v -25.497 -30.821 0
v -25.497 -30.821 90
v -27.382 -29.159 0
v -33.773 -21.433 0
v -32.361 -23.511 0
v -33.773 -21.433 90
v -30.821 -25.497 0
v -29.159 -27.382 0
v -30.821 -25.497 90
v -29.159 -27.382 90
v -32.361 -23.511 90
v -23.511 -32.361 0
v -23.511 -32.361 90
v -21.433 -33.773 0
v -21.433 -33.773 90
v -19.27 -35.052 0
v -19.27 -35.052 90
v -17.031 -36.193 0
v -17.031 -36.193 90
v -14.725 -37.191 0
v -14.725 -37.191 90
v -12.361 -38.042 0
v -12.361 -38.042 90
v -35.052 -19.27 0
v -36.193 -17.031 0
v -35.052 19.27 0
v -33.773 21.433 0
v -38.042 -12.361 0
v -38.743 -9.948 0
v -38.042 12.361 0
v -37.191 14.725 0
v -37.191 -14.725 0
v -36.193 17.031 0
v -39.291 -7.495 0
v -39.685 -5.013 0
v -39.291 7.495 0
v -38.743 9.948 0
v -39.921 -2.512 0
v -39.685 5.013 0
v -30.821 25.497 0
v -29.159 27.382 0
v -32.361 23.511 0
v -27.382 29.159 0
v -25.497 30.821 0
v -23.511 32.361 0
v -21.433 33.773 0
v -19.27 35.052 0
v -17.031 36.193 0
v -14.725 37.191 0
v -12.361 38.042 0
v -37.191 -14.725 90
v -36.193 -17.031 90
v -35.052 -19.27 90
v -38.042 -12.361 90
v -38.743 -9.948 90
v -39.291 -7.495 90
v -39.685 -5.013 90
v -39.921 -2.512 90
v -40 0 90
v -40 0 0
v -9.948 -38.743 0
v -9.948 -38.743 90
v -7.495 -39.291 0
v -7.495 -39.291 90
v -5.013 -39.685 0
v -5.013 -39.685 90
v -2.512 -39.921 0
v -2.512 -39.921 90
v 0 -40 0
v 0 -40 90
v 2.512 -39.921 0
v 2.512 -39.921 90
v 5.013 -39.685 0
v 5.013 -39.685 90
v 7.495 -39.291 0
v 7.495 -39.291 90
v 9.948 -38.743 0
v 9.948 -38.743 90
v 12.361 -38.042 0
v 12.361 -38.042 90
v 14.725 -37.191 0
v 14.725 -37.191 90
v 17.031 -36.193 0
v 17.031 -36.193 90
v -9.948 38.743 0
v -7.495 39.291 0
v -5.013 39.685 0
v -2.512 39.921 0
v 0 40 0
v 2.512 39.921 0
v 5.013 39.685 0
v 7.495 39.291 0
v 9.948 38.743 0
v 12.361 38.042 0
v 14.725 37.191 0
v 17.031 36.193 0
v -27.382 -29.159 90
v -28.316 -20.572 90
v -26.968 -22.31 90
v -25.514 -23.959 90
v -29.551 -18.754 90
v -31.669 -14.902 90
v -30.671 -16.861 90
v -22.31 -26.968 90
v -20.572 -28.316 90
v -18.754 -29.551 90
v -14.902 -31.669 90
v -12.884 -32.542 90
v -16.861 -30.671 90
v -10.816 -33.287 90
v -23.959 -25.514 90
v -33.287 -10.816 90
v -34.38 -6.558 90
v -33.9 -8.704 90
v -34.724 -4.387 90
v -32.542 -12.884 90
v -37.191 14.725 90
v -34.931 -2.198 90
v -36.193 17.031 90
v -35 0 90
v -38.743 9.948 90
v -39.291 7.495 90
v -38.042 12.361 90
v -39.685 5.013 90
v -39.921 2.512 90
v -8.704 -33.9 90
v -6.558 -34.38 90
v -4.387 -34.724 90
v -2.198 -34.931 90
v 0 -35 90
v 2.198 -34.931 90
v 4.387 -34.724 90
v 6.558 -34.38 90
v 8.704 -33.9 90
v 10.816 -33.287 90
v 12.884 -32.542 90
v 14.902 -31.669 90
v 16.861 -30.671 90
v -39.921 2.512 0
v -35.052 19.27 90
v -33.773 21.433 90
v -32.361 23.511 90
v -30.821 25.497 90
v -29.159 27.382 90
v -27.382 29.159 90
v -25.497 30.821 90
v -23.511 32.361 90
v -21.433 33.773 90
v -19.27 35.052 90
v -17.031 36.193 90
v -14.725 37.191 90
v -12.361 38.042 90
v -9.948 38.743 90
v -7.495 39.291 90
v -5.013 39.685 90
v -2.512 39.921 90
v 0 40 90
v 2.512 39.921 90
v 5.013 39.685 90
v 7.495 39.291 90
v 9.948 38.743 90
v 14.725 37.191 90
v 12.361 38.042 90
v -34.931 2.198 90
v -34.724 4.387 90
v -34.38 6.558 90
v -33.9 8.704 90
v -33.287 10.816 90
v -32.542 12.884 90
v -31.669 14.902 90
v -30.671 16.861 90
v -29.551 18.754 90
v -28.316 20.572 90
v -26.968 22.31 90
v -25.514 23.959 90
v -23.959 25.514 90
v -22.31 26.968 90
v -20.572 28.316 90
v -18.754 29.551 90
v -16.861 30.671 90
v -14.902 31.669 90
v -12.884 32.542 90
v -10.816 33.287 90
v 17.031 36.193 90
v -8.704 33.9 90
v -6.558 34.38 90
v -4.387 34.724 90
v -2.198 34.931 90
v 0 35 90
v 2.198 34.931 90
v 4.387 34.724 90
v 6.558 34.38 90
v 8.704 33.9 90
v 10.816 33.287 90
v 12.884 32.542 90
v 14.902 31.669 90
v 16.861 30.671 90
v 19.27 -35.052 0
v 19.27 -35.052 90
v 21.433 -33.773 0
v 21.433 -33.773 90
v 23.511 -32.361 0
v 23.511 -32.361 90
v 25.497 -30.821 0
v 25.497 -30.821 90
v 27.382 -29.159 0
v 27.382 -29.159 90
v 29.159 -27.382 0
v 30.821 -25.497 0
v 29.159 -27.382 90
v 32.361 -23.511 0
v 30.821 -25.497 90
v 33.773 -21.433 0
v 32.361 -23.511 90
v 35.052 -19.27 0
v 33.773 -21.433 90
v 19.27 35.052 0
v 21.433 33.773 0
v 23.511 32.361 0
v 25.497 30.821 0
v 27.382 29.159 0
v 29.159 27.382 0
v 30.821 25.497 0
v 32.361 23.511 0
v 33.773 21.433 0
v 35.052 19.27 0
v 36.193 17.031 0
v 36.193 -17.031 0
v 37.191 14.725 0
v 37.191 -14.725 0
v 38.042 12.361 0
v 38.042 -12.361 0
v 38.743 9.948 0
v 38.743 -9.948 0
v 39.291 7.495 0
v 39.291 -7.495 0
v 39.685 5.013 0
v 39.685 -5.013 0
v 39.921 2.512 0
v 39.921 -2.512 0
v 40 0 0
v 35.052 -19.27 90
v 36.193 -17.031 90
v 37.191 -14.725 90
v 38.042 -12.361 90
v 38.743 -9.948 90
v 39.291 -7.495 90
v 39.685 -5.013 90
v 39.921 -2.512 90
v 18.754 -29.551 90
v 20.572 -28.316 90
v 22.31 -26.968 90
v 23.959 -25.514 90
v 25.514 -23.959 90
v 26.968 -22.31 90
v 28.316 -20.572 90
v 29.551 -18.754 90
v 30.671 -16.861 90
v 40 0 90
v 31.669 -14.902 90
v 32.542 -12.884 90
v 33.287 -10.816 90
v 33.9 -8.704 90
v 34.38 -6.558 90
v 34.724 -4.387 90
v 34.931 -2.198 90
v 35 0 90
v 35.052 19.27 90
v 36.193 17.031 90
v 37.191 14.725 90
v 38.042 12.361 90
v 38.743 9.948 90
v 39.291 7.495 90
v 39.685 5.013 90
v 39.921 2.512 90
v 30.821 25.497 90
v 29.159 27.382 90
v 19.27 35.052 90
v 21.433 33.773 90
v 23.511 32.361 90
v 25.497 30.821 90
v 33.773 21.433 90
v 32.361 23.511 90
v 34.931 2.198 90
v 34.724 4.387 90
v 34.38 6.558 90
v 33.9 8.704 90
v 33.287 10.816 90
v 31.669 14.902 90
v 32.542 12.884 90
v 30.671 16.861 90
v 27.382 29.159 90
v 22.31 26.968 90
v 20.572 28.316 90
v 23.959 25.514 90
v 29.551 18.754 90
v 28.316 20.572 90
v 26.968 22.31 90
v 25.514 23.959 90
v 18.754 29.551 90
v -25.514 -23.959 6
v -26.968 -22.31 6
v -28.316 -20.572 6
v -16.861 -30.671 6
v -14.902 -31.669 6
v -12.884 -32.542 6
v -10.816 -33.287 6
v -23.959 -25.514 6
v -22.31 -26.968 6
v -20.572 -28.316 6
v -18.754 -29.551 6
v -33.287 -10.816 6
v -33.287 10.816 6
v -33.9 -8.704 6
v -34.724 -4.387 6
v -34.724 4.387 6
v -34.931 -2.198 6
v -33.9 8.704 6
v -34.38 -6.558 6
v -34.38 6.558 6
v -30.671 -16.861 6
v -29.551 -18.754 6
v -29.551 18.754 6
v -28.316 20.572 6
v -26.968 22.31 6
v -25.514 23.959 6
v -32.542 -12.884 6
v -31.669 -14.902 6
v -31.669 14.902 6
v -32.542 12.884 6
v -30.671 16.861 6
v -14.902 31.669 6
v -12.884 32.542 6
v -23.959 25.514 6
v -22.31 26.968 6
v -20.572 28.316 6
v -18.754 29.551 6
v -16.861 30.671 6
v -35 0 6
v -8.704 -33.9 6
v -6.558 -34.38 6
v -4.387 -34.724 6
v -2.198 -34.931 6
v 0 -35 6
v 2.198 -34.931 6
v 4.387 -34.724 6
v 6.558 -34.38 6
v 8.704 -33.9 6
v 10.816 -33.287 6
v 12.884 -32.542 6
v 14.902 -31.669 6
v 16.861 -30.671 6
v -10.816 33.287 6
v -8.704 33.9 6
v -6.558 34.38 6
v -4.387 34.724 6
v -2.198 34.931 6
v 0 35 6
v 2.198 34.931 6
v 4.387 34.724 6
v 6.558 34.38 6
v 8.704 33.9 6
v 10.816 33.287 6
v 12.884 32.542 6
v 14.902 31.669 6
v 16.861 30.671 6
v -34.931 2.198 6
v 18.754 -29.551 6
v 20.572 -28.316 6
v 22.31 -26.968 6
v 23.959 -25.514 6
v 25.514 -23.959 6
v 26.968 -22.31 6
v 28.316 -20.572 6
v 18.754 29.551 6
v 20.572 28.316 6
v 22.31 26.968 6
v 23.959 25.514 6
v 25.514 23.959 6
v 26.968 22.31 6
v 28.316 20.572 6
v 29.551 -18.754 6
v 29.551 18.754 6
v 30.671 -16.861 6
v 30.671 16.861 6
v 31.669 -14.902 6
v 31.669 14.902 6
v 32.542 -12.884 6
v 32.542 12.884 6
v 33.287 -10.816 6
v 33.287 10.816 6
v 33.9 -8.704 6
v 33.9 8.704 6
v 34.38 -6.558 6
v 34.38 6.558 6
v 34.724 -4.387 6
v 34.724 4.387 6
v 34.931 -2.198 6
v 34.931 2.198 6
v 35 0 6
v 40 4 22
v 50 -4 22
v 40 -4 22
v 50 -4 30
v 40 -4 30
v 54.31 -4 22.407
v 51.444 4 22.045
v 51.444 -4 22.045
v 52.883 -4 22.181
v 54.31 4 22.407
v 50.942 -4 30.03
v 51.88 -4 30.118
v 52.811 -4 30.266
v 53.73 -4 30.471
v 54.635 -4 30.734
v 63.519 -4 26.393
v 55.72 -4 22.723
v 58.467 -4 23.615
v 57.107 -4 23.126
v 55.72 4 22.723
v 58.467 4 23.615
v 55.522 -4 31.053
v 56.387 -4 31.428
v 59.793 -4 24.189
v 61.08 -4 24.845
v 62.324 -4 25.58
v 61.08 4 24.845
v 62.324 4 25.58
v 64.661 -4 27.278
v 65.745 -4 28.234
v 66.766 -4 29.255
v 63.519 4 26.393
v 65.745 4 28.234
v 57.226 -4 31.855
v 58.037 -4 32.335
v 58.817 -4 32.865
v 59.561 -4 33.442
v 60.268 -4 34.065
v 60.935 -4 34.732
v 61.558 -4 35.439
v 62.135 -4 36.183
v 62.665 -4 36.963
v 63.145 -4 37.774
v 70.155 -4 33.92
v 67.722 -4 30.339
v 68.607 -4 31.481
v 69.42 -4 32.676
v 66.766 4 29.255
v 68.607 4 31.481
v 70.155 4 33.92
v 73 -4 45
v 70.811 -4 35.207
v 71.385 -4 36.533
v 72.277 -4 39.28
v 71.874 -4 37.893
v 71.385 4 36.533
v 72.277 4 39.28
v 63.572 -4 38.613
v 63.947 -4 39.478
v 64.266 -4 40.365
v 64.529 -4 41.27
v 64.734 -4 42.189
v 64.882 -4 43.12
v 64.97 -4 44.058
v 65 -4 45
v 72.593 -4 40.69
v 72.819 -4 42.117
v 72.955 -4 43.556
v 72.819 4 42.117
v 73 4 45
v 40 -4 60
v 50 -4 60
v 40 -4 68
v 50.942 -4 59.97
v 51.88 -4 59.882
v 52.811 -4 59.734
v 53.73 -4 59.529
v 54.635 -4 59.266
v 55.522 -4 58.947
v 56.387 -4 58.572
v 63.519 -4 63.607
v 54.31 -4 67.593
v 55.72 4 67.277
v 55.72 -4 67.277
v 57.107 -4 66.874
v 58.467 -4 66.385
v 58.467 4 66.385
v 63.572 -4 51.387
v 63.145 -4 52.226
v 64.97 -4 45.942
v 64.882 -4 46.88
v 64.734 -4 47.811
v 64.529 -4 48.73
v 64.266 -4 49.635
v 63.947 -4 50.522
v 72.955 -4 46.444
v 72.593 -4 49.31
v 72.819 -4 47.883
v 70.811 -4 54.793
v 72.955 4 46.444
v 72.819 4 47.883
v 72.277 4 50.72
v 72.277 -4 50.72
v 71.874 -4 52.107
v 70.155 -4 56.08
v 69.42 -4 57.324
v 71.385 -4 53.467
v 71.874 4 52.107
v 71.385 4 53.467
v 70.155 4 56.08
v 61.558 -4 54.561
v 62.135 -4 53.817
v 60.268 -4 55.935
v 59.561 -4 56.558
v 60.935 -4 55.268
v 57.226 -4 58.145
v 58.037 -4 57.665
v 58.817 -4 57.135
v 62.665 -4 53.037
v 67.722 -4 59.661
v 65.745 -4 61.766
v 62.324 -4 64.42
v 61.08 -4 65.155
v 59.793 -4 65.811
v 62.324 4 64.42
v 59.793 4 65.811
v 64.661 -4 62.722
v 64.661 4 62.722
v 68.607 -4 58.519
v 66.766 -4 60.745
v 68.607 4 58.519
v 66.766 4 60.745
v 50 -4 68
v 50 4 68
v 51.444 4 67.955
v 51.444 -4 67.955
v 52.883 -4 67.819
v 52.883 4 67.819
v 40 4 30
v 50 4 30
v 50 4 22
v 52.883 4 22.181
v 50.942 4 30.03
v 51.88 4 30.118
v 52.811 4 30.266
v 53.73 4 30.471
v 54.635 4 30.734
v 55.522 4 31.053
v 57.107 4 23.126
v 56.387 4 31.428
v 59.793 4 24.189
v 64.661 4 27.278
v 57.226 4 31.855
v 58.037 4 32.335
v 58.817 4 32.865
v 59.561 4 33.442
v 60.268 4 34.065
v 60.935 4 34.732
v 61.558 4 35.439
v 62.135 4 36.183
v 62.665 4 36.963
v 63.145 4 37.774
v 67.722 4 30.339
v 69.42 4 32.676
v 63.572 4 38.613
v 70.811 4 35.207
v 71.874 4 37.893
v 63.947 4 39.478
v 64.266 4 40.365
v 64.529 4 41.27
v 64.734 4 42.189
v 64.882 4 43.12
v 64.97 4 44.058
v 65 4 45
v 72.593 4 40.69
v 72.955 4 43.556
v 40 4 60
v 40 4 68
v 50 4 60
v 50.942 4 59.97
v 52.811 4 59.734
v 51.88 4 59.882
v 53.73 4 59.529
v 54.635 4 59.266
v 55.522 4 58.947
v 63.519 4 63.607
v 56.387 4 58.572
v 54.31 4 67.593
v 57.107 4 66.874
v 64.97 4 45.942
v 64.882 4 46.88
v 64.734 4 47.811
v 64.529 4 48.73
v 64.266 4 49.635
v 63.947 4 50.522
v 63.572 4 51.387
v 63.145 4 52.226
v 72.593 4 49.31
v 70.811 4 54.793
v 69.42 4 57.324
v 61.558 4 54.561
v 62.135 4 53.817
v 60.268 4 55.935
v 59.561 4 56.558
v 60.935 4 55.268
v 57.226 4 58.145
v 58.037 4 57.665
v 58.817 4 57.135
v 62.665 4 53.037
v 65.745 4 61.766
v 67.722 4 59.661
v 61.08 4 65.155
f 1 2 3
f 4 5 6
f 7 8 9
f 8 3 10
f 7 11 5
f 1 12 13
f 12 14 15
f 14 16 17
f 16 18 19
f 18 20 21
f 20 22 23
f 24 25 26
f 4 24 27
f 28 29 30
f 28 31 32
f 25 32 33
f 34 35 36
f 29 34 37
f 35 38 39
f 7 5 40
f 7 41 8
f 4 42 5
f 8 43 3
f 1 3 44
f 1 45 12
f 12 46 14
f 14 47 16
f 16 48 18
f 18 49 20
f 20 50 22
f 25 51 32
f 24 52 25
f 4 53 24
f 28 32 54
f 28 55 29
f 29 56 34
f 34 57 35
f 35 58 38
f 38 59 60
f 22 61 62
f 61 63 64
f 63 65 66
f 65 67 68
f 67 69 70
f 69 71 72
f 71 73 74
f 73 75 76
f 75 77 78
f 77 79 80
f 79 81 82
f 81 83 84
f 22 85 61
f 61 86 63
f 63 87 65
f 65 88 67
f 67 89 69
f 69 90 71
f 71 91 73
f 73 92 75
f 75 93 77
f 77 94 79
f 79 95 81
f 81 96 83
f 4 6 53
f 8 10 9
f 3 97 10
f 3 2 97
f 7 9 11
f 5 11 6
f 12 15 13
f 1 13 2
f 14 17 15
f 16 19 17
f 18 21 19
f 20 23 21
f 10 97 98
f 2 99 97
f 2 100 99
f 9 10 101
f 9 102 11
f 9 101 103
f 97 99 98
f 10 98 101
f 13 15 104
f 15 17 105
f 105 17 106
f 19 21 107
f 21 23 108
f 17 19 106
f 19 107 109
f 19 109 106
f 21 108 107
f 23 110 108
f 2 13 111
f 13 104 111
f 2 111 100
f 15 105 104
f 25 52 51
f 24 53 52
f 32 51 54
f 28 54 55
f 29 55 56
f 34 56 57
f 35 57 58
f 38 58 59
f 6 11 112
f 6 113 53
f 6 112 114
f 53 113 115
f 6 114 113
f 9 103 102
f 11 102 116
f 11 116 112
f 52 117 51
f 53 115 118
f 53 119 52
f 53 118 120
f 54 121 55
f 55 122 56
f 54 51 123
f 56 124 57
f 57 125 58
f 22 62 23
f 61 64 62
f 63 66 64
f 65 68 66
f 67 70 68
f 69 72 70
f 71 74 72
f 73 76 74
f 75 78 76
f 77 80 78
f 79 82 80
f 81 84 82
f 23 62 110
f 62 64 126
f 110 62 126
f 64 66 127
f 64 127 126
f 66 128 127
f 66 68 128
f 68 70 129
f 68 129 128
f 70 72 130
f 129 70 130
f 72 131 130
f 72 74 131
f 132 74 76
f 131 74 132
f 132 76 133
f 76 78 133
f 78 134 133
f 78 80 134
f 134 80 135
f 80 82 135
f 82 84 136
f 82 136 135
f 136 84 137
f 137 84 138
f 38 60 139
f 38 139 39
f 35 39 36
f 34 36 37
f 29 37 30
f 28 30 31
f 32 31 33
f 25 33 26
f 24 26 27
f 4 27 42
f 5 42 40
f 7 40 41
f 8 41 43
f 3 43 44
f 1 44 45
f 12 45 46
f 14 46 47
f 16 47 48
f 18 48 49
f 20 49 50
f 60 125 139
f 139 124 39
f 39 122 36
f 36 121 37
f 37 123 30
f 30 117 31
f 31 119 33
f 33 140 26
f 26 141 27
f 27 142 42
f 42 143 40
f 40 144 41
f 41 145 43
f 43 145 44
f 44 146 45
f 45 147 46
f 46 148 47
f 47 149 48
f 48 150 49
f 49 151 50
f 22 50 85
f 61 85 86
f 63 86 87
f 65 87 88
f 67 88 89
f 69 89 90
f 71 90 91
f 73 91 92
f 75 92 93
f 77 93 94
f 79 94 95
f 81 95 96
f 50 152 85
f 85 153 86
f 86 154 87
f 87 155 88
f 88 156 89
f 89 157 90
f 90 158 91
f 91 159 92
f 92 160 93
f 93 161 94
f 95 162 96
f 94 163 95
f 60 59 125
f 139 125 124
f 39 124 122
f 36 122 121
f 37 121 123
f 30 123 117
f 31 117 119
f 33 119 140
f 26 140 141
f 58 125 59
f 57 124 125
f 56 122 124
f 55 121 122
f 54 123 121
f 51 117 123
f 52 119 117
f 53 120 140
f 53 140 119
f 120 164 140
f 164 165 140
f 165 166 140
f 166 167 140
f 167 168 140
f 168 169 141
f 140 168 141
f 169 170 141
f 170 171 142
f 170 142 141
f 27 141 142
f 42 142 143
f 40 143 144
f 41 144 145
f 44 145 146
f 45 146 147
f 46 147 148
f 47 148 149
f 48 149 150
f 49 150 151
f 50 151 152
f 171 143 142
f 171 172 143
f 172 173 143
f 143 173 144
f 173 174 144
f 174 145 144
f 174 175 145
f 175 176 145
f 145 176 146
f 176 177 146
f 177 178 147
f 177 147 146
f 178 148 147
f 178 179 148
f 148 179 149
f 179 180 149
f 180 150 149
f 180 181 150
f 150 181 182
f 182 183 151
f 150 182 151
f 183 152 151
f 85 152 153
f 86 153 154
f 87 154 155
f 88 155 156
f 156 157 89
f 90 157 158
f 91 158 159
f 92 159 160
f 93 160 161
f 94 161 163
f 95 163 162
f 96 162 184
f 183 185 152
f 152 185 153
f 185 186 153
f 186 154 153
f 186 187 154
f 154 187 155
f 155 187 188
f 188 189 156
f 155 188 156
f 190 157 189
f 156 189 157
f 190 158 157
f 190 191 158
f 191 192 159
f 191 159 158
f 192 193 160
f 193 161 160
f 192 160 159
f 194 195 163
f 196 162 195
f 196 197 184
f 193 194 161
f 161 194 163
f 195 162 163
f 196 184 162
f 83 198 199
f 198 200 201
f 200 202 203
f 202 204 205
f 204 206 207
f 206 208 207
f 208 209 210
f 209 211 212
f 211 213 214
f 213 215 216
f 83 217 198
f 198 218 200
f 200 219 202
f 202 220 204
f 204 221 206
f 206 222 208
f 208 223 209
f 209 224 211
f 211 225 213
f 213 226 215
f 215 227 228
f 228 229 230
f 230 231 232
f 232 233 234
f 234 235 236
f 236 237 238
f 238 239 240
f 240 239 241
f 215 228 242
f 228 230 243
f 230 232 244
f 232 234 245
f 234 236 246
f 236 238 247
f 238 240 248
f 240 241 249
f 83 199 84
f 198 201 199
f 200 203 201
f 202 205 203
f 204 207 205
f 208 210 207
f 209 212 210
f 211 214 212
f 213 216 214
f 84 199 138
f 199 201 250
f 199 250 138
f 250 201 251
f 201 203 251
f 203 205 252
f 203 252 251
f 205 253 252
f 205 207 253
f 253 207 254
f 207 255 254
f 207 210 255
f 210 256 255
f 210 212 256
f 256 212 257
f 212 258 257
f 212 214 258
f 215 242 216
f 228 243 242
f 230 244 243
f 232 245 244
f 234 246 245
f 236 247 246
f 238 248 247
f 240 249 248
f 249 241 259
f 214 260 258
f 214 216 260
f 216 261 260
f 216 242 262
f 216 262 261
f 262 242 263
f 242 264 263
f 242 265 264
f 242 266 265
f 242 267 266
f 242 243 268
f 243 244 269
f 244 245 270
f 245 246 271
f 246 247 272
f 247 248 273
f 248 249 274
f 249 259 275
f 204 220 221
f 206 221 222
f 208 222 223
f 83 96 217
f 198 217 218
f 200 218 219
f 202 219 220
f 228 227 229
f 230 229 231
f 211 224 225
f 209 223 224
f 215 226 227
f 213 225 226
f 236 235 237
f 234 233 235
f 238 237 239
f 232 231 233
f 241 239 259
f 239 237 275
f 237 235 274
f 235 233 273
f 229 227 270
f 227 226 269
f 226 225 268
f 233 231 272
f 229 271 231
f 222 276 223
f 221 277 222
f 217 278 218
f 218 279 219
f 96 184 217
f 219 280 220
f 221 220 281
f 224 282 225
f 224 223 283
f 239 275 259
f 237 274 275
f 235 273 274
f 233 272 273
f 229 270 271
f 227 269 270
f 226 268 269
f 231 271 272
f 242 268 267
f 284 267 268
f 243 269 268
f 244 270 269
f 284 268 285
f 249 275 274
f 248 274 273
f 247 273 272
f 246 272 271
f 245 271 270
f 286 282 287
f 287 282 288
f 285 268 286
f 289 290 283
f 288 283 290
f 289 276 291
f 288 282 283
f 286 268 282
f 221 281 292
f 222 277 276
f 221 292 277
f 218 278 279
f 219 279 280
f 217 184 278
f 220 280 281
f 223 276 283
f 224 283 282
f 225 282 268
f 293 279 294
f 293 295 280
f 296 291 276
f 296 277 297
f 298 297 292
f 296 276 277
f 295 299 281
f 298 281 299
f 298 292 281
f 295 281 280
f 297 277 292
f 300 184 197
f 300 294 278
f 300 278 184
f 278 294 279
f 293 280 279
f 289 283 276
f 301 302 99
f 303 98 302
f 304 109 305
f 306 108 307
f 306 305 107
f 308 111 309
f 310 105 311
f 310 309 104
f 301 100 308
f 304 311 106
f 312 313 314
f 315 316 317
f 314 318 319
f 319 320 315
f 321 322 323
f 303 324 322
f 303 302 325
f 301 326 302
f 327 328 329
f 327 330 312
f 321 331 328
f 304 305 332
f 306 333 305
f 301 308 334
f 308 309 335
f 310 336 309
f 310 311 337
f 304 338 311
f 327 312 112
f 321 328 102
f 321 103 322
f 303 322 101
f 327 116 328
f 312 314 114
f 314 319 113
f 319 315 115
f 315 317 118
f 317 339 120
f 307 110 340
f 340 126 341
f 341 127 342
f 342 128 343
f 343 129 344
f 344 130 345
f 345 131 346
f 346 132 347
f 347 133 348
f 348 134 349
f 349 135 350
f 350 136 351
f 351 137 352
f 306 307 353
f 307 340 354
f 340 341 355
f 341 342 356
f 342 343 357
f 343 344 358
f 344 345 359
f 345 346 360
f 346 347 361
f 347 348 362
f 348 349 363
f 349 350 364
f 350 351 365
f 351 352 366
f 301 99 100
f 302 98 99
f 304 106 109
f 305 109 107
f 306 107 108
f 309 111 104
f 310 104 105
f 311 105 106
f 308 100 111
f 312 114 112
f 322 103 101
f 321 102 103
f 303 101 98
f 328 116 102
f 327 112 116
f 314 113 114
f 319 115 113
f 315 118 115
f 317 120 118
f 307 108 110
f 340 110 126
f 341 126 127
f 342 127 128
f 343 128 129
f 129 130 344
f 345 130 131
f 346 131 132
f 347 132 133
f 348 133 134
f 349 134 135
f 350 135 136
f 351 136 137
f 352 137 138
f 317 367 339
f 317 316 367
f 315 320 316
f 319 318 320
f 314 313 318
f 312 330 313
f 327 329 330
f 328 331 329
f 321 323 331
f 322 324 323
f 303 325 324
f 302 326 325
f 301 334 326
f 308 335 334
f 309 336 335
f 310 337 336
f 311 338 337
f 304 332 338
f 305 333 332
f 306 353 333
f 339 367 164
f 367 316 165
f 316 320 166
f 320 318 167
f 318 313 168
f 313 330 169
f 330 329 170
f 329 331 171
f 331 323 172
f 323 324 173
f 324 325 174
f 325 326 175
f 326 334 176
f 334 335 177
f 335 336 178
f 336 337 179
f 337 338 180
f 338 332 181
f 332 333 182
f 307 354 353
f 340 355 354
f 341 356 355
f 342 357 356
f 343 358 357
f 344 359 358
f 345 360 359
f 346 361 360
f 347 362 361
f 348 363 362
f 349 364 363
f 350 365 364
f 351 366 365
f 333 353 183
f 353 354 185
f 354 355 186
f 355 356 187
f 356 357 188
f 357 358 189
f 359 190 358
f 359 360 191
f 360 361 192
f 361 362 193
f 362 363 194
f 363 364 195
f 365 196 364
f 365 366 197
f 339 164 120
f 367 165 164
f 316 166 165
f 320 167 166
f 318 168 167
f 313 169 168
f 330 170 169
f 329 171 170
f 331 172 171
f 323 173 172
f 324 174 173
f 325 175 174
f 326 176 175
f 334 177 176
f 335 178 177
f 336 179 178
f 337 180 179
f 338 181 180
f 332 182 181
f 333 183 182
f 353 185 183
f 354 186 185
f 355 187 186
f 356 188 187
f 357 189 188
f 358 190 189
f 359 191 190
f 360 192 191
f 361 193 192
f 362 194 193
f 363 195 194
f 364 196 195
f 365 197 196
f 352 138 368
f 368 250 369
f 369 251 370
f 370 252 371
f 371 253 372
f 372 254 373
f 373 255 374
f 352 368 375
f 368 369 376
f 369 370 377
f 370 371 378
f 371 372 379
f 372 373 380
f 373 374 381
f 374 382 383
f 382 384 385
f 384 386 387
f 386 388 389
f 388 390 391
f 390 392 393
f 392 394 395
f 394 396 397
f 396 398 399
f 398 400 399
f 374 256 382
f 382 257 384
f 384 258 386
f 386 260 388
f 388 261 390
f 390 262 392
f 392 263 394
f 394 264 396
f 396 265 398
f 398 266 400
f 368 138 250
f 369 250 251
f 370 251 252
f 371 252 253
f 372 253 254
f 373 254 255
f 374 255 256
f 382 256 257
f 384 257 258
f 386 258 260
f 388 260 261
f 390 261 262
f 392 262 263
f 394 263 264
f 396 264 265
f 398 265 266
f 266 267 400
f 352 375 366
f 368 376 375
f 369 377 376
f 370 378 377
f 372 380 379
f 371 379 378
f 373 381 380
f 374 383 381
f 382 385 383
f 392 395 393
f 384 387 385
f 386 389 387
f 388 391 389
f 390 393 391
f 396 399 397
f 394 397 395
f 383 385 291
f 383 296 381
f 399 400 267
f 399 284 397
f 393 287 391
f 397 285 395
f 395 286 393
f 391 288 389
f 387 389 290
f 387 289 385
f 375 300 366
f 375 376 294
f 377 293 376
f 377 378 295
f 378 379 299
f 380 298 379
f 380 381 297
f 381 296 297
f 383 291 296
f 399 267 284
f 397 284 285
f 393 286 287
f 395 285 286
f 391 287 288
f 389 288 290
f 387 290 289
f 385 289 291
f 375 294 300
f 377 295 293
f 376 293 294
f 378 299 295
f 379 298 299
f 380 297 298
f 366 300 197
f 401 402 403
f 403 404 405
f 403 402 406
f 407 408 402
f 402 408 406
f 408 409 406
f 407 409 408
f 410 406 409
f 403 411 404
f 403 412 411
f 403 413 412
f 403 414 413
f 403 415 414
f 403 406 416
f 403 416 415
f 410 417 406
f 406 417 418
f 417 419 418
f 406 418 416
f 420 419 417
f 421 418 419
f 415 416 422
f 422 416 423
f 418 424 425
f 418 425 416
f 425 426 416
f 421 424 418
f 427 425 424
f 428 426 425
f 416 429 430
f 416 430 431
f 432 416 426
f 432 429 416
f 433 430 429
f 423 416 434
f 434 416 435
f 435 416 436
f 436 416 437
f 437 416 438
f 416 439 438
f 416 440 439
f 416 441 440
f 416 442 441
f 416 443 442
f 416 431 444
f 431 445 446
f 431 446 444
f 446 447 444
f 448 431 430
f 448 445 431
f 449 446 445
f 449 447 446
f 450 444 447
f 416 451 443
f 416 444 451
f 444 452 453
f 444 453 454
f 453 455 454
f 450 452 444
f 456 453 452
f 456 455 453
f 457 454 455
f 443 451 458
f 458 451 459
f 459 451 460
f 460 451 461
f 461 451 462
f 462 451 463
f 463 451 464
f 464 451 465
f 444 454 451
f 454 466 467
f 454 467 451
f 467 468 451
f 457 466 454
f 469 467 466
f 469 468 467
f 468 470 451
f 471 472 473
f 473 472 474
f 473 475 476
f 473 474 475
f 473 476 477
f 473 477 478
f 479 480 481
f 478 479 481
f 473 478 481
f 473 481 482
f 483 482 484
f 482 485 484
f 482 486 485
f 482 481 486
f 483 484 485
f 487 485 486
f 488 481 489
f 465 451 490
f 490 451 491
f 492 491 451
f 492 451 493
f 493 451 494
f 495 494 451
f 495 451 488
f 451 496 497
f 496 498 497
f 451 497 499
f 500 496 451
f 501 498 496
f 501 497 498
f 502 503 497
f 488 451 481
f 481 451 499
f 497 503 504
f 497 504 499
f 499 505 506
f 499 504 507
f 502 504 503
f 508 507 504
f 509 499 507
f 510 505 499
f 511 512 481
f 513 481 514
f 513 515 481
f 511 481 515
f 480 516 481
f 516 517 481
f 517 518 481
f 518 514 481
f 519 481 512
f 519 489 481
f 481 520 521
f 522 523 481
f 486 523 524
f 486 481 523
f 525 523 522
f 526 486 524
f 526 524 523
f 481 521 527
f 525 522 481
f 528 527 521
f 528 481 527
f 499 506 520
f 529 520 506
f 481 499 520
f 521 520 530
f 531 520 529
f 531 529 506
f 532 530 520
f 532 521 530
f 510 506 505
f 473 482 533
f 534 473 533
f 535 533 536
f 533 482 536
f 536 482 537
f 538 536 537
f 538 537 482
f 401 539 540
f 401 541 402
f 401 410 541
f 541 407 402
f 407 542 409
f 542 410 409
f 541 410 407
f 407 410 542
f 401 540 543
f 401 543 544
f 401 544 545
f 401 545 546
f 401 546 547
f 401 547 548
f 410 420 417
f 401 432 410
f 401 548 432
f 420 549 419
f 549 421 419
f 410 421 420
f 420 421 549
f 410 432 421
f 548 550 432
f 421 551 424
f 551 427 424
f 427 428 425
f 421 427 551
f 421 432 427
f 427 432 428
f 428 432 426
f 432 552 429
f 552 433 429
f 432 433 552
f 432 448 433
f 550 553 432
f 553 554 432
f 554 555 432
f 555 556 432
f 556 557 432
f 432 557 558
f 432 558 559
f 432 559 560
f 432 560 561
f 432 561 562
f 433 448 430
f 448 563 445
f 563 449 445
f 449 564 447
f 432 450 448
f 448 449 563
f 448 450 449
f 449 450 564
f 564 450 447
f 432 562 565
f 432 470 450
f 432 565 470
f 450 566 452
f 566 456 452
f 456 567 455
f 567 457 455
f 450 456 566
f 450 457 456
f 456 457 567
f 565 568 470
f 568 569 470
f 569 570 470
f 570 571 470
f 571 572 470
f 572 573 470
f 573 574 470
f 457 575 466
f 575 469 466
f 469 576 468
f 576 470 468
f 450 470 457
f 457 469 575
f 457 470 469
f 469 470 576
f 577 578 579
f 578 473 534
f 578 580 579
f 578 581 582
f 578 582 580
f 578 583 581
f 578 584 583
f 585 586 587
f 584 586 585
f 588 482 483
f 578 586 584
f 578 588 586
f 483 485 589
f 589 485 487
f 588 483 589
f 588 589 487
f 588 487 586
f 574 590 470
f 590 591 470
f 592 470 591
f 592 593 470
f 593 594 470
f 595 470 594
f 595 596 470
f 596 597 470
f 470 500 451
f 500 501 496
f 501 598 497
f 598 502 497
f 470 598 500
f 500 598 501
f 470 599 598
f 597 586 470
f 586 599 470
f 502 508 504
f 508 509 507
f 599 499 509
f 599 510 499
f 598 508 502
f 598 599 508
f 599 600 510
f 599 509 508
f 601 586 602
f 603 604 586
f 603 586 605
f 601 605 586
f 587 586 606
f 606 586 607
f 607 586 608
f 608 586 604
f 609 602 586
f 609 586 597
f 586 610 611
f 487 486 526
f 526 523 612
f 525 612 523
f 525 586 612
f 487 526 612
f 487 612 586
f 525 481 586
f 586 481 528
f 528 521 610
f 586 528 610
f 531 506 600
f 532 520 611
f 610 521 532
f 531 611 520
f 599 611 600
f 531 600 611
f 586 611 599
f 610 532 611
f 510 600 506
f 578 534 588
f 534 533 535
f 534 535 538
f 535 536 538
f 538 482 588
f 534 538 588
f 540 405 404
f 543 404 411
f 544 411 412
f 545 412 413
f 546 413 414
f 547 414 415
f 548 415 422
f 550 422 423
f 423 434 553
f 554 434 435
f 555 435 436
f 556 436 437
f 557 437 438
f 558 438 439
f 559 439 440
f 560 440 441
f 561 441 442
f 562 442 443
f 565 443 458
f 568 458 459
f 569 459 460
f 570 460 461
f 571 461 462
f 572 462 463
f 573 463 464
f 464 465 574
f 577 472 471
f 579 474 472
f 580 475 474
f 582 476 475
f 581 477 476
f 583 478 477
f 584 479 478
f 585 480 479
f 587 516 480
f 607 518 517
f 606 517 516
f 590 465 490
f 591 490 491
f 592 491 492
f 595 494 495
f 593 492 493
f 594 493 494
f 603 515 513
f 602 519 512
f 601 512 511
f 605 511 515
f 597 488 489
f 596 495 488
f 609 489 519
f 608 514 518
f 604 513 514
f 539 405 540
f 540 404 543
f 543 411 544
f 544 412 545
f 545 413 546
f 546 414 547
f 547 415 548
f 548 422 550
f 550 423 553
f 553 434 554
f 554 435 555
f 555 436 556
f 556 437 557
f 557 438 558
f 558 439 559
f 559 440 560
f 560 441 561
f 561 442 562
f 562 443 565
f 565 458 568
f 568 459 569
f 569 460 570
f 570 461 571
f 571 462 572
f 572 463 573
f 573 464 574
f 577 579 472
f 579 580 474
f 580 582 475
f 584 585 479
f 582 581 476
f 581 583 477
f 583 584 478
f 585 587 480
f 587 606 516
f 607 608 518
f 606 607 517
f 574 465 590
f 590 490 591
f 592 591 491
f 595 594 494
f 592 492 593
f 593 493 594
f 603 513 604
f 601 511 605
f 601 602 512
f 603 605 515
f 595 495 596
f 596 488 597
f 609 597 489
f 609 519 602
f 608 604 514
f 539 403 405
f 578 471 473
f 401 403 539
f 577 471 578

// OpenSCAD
// Mug Parameters
outer_d = 80;
inner_d = 70;
height = 90;
bottom_thickness = 6;

// Handle Parameters
handle_inner_h = 30;
handle_inner_w = 25;
handle_thickness = 8;
$fn = 100;

module mug_body() {
    difference() {
        // Outer Cylinder
        cylinder(d = outer_d, h = height);
        
        // Inner Hollow Part
        translate([0, 0, bottom_thickness])
            cylinder(d = inner_d, h = height - bottom_thickness + 1);
    }
}

module handle() {
    handle_outer_h = handle_inner_h + handle_thickness * 2;
    handle_outer_w = handle_inner_w + handle_thickness;
    
    // Position the handle at the center height and attached to the +X side
    translate([outer_d / 2, 0, height / 2]) {
        rotate([90, 0, 0]) {
            difference() {
                // Outer D-shape profile
                hull() {
                    cylinder(r = handle_outer_h / 2, h = handle_thickness, center = true);
                    translate([handle_outer_w - handle_outer_h / 2, 0, 0])
                        cylinder(r = handle_outer_h / 2, h = handle_thickness, center = true);
                }
                
                // Inner D-shape hole
                hull() {
                    translate([0, 0, 0])
                        cylinder(r = handle_inner_h / 2, h = handle_thickness + 2, center = true);
                    translate([handle_inner_w - handle_inner_h / 2, 0, 0])
                        cylinder(r = handle_inner_h / 2, h = handle_thickness + 2, center = true);
                }
                
                // Cut off the overlapping part inside the mug inner radius to keep clean interior
                translate([-handle_outer_h, -handle_outer_h, -(handle_thickness + 2)/2])
                    cube([handle_outer_h, handle_outer_h * 2, handle_thickness + 2]);
            }
        }
    }
}

// Final Union
union() {
    mug_body();
    handle();
}
